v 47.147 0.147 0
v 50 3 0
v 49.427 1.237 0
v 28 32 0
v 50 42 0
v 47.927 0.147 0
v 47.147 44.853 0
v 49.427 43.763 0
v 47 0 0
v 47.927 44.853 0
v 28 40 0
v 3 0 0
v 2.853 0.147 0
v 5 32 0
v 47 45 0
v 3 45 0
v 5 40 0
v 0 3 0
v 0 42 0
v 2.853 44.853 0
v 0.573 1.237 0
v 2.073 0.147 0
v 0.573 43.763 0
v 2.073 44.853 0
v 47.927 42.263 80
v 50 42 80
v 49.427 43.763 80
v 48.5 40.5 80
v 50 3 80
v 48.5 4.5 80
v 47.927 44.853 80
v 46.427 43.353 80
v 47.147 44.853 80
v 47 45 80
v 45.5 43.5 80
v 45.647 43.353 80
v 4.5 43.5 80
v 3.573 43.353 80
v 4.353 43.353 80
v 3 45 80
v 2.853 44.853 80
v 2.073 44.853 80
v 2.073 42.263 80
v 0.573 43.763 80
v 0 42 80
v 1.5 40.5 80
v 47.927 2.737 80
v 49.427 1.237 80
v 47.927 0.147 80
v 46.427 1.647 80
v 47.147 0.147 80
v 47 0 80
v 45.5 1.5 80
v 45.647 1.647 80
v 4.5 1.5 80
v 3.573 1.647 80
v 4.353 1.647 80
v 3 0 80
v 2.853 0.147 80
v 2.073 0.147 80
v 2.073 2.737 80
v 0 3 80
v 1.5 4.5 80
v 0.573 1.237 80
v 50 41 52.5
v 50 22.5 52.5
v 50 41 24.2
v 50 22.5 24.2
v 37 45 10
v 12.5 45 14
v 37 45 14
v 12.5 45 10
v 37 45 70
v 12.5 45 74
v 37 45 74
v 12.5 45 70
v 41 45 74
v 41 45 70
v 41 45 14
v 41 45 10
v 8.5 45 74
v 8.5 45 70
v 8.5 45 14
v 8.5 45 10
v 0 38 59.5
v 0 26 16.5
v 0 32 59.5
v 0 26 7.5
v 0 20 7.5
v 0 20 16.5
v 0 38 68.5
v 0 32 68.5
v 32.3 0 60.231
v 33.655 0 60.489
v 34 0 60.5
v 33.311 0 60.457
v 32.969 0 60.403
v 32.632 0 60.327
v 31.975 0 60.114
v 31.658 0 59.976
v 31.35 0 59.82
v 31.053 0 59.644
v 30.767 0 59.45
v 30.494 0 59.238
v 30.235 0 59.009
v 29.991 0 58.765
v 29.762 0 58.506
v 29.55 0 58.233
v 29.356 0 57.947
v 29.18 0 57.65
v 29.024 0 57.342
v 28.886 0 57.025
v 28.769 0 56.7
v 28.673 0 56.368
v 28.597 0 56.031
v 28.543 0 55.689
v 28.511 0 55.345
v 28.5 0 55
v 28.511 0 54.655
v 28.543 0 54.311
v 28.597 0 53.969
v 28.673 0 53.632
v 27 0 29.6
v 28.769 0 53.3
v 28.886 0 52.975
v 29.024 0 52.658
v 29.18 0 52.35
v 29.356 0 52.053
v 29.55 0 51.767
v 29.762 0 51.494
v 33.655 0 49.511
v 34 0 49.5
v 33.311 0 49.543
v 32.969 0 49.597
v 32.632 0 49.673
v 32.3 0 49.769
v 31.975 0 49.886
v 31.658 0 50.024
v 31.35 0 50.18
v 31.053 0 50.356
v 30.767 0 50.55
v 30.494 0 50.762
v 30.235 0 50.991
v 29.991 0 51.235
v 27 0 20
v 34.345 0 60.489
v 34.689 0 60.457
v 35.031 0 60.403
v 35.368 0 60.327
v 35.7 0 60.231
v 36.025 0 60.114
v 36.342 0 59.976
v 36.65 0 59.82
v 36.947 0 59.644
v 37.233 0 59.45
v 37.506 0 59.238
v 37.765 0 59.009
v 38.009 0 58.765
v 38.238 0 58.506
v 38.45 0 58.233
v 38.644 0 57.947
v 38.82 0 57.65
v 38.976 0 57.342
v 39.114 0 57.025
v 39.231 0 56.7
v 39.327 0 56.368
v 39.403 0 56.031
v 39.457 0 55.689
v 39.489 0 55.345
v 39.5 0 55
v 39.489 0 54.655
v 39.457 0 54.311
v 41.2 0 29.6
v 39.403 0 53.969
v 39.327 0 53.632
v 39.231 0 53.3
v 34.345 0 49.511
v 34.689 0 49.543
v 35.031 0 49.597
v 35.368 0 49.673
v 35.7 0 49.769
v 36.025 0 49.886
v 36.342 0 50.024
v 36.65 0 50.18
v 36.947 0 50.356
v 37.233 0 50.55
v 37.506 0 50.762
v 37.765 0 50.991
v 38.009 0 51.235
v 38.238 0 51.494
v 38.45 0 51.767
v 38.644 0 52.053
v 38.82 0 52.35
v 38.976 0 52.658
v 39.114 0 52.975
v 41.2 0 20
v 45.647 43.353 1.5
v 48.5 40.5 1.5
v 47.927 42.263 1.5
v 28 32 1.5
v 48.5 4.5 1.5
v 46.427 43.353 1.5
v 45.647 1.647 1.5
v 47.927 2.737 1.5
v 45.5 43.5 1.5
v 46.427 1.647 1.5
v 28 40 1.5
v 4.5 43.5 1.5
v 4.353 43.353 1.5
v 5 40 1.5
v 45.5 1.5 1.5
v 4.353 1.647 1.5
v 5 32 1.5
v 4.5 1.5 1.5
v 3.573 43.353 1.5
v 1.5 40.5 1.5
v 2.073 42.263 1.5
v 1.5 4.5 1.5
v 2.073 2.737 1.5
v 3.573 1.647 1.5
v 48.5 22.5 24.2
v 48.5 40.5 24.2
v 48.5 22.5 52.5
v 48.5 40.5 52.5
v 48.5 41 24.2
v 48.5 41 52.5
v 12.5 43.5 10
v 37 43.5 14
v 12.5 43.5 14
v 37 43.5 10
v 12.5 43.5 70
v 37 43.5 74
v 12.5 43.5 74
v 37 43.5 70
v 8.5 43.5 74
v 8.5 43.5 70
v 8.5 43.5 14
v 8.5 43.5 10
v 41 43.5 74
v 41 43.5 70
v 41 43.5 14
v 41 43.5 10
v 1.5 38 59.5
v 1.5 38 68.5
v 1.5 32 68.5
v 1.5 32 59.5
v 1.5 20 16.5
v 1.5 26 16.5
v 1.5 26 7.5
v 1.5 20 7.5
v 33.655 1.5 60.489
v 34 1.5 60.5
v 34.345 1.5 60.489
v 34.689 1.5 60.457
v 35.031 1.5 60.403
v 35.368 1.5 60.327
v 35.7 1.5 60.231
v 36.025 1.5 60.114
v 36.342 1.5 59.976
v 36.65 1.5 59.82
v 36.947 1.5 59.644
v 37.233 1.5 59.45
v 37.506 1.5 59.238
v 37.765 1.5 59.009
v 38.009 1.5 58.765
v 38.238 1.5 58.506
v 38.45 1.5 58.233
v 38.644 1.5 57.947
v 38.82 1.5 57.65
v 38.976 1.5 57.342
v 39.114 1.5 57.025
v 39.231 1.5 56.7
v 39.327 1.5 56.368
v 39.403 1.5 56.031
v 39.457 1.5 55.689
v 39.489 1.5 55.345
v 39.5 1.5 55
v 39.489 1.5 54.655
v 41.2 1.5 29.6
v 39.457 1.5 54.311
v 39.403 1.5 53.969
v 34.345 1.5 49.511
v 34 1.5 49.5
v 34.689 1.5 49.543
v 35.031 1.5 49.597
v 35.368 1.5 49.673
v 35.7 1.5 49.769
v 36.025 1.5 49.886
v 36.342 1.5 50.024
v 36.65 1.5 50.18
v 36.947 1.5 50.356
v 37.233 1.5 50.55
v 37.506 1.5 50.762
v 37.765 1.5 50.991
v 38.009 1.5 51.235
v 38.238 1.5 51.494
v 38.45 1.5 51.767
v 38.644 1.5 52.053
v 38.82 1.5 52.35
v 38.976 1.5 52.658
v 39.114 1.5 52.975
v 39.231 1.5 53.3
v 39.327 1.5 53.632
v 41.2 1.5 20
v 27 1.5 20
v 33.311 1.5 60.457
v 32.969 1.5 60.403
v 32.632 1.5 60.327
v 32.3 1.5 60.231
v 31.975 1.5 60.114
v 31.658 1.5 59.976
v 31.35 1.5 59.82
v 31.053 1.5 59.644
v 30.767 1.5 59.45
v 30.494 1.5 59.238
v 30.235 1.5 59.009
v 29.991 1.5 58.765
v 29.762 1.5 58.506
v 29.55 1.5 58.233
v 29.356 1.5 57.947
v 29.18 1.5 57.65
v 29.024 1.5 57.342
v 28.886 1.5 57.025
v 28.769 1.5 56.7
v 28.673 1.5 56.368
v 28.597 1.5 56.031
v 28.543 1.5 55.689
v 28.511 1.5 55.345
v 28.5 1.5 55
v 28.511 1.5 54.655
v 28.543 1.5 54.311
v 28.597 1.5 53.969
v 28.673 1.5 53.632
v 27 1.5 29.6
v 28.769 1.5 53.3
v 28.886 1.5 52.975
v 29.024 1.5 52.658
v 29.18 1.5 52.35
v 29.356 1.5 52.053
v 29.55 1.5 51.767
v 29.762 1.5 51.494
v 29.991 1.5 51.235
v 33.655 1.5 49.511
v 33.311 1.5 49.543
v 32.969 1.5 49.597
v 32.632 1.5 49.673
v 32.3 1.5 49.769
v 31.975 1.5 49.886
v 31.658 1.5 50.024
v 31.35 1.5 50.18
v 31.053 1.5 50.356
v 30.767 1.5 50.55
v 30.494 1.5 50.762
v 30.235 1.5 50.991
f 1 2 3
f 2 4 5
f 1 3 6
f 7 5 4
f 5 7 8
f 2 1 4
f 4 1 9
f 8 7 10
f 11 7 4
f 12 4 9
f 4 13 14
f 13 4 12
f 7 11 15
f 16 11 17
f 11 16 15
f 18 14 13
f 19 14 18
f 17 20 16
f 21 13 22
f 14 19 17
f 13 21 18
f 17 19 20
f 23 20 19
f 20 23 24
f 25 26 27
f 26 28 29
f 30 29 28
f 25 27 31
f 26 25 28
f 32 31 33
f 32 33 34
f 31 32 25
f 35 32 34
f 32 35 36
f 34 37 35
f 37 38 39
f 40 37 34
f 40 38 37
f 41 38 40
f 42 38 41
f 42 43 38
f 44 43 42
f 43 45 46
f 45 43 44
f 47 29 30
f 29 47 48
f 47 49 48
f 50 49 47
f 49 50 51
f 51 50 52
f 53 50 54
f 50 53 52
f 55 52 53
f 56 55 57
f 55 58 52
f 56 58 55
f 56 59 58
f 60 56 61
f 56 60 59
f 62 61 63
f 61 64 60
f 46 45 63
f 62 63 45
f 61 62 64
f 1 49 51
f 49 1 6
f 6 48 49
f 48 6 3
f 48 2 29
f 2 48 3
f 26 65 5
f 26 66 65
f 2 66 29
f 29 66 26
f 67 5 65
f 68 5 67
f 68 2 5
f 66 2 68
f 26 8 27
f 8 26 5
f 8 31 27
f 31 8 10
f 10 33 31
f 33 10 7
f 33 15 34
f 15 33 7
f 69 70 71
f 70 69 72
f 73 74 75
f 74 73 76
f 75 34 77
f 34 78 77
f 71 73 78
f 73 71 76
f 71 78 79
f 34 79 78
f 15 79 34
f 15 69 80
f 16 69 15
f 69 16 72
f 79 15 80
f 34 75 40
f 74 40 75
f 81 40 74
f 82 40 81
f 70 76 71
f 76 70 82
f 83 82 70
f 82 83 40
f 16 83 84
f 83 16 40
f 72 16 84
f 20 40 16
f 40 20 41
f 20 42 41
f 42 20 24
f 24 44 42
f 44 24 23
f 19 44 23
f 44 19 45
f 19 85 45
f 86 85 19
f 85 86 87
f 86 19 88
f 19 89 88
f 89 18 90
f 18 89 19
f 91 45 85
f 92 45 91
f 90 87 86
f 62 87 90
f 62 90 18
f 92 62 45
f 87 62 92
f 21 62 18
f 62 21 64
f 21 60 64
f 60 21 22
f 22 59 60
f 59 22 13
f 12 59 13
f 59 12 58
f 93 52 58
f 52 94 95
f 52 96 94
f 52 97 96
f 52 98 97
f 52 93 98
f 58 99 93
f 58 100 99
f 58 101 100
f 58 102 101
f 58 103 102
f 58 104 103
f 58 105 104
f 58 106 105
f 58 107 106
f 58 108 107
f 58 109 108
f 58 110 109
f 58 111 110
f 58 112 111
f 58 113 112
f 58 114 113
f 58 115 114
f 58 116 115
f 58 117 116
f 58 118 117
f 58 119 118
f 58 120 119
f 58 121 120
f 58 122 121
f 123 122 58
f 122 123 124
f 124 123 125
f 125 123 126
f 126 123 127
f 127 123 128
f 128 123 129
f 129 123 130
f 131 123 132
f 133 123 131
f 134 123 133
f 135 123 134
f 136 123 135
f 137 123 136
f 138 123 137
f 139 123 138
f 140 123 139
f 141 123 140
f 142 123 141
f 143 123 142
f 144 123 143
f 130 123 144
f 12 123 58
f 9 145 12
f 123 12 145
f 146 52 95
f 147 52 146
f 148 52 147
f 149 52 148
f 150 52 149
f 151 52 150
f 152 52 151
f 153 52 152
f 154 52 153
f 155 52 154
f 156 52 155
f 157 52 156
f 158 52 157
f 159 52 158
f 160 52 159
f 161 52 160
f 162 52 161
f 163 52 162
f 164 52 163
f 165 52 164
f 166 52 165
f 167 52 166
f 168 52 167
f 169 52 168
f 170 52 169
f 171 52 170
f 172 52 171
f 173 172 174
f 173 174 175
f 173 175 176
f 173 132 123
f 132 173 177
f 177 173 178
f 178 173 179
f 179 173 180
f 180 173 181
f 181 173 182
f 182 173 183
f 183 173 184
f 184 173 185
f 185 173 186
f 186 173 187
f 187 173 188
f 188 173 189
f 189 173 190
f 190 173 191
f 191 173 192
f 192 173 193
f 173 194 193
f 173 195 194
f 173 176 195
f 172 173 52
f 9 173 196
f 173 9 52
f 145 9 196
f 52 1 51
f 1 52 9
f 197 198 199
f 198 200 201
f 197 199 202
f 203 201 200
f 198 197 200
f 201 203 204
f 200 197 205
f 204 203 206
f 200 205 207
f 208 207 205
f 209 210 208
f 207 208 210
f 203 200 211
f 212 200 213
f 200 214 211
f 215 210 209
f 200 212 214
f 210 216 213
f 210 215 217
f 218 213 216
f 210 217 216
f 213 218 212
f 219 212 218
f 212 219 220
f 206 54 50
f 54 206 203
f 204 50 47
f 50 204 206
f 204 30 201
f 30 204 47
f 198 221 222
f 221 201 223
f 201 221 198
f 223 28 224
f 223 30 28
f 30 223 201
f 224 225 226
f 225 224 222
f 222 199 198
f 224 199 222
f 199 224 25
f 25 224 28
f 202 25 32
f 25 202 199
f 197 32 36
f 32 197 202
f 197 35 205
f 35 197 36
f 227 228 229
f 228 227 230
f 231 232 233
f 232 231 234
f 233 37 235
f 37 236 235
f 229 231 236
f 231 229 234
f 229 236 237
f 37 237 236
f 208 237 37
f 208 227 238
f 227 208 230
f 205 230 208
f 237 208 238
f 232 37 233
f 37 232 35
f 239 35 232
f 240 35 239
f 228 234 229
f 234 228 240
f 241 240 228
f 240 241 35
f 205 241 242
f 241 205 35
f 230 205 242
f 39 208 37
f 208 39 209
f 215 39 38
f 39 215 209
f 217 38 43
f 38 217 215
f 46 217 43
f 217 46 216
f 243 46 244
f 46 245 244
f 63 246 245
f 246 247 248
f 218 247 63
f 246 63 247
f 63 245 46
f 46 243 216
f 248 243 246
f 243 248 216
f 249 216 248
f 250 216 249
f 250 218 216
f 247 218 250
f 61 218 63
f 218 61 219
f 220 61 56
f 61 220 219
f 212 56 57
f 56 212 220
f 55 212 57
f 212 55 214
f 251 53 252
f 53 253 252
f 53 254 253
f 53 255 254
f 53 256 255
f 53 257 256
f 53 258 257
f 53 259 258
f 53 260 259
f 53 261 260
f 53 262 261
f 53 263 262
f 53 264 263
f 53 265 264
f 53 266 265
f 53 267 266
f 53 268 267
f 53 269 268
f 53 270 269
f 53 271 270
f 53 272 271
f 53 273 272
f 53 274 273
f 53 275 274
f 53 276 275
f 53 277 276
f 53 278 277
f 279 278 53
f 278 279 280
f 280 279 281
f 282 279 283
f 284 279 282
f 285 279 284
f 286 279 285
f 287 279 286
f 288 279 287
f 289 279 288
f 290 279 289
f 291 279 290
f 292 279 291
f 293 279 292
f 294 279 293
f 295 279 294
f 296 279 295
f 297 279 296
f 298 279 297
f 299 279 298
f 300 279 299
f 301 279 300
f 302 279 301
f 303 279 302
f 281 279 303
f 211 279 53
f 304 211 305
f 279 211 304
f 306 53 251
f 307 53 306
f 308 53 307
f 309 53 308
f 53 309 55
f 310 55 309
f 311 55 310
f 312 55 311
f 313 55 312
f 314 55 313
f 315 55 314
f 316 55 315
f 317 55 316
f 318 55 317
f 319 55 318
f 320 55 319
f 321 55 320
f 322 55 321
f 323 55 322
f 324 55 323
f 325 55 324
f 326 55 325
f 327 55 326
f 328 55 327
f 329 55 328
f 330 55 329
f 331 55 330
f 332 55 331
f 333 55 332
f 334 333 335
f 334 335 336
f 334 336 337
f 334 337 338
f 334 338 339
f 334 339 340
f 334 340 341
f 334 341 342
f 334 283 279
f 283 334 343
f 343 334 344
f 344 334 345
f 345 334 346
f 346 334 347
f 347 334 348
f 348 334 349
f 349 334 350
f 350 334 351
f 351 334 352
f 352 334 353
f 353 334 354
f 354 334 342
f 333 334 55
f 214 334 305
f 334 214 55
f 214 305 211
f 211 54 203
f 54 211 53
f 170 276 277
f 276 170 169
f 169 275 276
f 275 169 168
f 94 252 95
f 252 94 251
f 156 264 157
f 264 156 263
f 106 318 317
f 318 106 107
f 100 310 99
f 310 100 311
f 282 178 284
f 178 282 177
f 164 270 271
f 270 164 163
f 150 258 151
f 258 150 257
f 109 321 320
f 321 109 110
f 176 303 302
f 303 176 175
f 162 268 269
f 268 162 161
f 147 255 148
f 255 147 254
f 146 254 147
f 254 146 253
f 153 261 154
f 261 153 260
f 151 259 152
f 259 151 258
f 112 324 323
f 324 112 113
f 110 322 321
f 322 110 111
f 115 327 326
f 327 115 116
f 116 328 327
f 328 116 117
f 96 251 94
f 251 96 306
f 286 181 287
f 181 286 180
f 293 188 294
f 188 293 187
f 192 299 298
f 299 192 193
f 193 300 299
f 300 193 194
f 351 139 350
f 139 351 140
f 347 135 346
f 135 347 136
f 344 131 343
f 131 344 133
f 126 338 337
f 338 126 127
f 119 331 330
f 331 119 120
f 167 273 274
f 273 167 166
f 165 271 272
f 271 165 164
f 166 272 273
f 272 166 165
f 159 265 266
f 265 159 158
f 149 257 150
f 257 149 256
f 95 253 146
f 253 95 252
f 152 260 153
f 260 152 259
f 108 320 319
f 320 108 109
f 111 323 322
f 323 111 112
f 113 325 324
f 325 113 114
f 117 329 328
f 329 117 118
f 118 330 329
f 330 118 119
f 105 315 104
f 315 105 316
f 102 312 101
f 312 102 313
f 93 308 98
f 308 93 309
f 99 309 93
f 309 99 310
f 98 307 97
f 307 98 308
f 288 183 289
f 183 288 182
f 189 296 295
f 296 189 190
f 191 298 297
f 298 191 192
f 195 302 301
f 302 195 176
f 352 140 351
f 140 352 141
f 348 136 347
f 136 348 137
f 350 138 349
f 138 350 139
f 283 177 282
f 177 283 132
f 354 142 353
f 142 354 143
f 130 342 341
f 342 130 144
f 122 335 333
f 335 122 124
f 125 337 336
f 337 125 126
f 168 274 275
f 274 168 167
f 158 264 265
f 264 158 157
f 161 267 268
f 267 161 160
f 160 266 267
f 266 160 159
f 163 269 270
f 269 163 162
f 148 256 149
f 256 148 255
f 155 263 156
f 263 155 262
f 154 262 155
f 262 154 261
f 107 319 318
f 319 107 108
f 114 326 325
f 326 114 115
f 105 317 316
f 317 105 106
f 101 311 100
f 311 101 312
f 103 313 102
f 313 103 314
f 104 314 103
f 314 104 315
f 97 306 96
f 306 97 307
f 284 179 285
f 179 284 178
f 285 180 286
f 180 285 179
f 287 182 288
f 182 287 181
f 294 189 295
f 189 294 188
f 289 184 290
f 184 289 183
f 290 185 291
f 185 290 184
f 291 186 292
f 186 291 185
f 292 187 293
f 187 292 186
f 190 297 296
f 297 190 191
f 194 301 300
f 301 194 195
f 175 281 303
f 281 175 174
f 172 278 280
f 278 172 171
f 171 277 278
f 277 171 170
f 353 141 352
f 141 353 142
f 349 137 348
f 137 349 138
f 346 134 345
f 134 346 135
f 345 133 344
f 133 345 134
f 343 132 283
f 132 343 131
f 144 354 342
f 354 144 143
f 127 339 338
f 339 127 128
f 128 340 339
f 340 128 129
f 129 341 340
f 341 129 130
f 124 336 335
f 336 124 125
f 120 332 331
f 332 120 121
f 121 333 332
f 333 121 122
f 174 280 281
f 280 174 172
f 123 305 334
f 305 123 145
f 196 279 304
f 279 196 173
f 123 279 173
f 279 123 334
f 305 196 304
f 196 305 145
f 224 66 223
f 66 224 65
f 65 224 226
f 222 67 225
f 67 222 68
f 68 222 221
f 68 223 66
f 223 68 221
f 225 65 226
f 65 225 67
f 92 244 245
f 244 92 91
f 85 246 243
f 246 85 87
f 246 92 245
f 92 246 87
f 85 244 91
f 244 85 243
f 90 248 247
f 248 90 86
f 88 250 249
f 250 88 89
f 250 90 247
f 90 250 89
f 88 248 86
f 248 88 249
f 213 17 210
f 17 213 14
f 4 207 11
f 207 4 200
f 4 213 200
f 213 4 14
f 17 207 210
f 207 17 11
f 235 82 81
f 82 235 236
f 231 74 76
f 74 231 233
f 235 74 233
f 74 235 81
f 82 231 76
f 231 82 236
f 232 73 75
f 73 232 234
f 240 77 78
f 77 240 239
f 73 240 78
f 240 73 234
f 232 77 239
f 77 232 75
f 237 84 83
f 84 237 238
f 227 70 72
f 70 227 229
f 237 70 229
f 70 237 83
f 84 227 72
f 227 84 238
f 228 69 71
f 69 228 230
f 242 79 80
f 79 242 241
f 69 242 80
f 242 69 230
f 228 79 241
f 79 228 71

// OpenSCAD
// Office version as default
BaseWidth = 50;
BaseDepth = 45;
BaseHeight = 80;
CornerRadius = 3;
WallThickness = 1.5;

module RoundedRectangle($Width=BaseWidth, $Depth=BaseDepth, $Radius=CornerRadius) 
{
    polygon(points = [[$Radius, 0], [$Width-$Radius, 0],[$Width, $Radius], [$Width, $Depth-$Radius], [$Width-$Radius, $Depth], [$Radius, $Depth], [0, $Depth-$Radius], [0, $Radius]], paths=[[0,1,2,3,4,5,6,7]]);
        
    translate([$Radius,$Radius,0]){
        circle(r=$Radius);
    }        
    translate([$Width-$Radius,$Radius,0]){
        circle(r=$Radius);
    }
    
    translate([$Width-$Radius,$Depth-$Radius,0]){ 
        circle(r=$Radius);
    }
   
    translate([$Radius,$Depth-$Radius,0]){ 
        circle(r=$Radius);
    }
}

module base3D($Width=BaseWidth, $Depth=BaseDepth, $Height=BaseHeight, $Radius=CornerRadius, $Thickness=WallThickness)
{
    difference()
    {
        linear_extrude(height = $Height, center = false, convexity = 0, twist = 0)
        RoundedRectangle($Width, $Depth, $Radius);
        translate([$Thickness, $Thickness, $Thickness]) {
        linear_extrude(height = $Height, center = false, convexity = 0, twist = 0)
        RoundedRectangle($Width-$Thickness*2, $Depth-$Thickness*2, $Radius);
        }
    }
}


difference() {
    base3D(BaseWidth, BaseDepth, BaseHeight, CornerRadius, WallThickness);
    
    
    // Button hole
    rotate([90, 0, 0]){
        translate([BaseWidth/2+9, BaseHeight/2+15, -WallThickness]){
        cylinder(h=WallThickness, d=11, center=false, $fn=100);
        }
    }

    // Power switch hole
    
    rotate([90, 0, 0]){
        translate([BaseWidth/2+2, BaseHeight/2-20, -WallThickness]){
        cube(size=[14.2, 9.6, WallThickness], center=false);
        }
    }
   
    // Power input hole
    translate([BaseWidth-WallThickness, BaseDepth/2, BaseHeight/2+14-WallThickness]){
        rotate([0, 90, 0])
        cube(size=[28.3, 18.5, WallThickness], center=false);
    }

    // Power output hole
    translate([0, BaseHeight/2-8, BaseHeight-10-WallThickness]){
        rotate([0, 90, 0])
        cube(size=[9, 6, WallThickness], center=false);
    }

    // Control input hole
    translate([0, BaseHeight/2-20, 15+WallThickness]){
        rotate([0, 90, 0])
        cube(size=[9, 6, WallThickness], center=false);
    }

    // Hole in the front to see LEDs on the relay module
    translate([5, 32, 0])
        cube(size=[23, 8, WallThickness], center=false);
    
    
    // Hole for ziptie
/*
    translate([10, 10, 0])
        cube(size=[4, 4, WallThickness], center=false);
    translate([37.5, 37.5, 0])
        cube(size=[4, 4, WallThickness], center=false);
    translate([10, 37.5, 0])
        cube(size=[4, 4, WallThickness], center=false);
    translate([37.5, 10, 0])
        cube(size=[4, 4, WallThickness], center=false);
*/
    
    // Hole for ziptie
    translate([10-WallThickness, BaseDepth, BaseHeight-10]){
        rotate([90, 0, 0])
        cube(size=[4, 4, WallThickness], center=false);
    }
    translate([BaseWidth-10-2*WallThickness, BaseDepth, BaseHeight-10]){
        rotate([90, 0, 0])
        cube(size=[4, 4, WallThickness], center=false);
    }
    translate([10-WallThickness, BaseDepth, 10]){
        rotate([90, 0, 0])
        cube(size=[4, 4, WallThickness], center=false);
    }
    translate([BaseWidth-10-2*WallThickness, BaseDepth, 10]){
        rotate([90, 0, 0])
        cube(size=[4, 4, WallThickness], center=false);
    }
}
   
/*
difference() {
    translate([0, BaseDepth+WallThickness*3, 0]){
        linear_extrude(height = WallThickness, center = false, convexity = 0, twist = 0)
        RoundedRectangle(BaseWidth-WallThickness*2-1, BaseDepth-WallThickness*2-1, CornerRadius);
    }
}
*/
